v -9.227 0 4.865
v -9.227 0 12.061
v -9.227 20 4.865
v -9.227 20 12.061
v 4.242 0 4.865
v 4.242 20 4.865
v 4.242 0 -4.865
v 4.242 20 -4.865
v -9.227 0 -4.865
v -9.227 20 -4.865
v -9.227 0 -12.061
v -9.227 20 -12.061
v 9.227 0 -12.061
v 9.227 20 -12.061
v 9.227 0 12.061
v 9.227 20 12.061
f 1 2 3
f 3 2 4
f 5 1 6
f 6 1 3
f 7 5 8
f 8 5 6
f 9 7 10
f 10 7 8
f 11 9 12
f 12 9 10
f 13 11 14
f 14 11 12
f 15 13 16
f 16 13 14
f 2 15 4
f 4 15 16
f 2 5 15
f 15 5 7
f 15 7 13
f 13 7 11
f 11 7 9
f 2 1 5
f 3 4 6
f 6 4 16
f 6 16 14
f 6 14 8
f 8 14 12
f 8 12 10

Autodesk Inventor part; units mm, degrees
ref_plane "YZ Plane" through (0, 0, 0) normal (1, 0, 0) x (0, 1, 0)
ref_plane "XZ Plane" through (0, 0, 0) normal (0, 1, 0) x (-1, 0, 0)
ref_plane "XY Plane" through (0, 0, 0) normal (0, 0, 1) x (1, 0, 0)
sketch "Sketch1" plane through (0, 0, 0) normal (0, 1, 0) x (-1, 0, 0)
  line L0 (-9.2268, 12.0612) -> (9.2268, 12.0612)
  line L1 (9.2268, -12.0612) -> (-9.2268, -12.0612)
  line L2 (-9.2268, -12.0612) -> (-9.2268, 12.0612)
  line L3 (-9.2268, 12.0612) -> (9.2268, -12.0612) construction
  line L4 (9.2268, 12.0612) -> (-9.2268, -12.0612) construction
  line L5 (-4.2415, 4.8647) -> (9.2268, 4.8647)
  line L6 (9.2268, -4.8647) -> (-4.2415, -4.8647)
  line L7 (-4.2415, -4.8647) -> (-4.2415, 4.8647)
  line L8 (-4.2415, 4.8647) -> (14.8956, -4.8647) construction
  line L9 (14.8956, 4.8647) -> (-4.2415, -4.8647) construction
  line L10 (9.2268, 12.0612) -> (9.2268, 4.8647)
  line L11 (9.2268, -4.8647) -> (9.2268, -12.0612)
  point P0 (0, 0)
  point P1 (5.327, 0)
extrude "Extrusion1" add sketch "Sketch1" along normal blind 20
properties part number "slot"
